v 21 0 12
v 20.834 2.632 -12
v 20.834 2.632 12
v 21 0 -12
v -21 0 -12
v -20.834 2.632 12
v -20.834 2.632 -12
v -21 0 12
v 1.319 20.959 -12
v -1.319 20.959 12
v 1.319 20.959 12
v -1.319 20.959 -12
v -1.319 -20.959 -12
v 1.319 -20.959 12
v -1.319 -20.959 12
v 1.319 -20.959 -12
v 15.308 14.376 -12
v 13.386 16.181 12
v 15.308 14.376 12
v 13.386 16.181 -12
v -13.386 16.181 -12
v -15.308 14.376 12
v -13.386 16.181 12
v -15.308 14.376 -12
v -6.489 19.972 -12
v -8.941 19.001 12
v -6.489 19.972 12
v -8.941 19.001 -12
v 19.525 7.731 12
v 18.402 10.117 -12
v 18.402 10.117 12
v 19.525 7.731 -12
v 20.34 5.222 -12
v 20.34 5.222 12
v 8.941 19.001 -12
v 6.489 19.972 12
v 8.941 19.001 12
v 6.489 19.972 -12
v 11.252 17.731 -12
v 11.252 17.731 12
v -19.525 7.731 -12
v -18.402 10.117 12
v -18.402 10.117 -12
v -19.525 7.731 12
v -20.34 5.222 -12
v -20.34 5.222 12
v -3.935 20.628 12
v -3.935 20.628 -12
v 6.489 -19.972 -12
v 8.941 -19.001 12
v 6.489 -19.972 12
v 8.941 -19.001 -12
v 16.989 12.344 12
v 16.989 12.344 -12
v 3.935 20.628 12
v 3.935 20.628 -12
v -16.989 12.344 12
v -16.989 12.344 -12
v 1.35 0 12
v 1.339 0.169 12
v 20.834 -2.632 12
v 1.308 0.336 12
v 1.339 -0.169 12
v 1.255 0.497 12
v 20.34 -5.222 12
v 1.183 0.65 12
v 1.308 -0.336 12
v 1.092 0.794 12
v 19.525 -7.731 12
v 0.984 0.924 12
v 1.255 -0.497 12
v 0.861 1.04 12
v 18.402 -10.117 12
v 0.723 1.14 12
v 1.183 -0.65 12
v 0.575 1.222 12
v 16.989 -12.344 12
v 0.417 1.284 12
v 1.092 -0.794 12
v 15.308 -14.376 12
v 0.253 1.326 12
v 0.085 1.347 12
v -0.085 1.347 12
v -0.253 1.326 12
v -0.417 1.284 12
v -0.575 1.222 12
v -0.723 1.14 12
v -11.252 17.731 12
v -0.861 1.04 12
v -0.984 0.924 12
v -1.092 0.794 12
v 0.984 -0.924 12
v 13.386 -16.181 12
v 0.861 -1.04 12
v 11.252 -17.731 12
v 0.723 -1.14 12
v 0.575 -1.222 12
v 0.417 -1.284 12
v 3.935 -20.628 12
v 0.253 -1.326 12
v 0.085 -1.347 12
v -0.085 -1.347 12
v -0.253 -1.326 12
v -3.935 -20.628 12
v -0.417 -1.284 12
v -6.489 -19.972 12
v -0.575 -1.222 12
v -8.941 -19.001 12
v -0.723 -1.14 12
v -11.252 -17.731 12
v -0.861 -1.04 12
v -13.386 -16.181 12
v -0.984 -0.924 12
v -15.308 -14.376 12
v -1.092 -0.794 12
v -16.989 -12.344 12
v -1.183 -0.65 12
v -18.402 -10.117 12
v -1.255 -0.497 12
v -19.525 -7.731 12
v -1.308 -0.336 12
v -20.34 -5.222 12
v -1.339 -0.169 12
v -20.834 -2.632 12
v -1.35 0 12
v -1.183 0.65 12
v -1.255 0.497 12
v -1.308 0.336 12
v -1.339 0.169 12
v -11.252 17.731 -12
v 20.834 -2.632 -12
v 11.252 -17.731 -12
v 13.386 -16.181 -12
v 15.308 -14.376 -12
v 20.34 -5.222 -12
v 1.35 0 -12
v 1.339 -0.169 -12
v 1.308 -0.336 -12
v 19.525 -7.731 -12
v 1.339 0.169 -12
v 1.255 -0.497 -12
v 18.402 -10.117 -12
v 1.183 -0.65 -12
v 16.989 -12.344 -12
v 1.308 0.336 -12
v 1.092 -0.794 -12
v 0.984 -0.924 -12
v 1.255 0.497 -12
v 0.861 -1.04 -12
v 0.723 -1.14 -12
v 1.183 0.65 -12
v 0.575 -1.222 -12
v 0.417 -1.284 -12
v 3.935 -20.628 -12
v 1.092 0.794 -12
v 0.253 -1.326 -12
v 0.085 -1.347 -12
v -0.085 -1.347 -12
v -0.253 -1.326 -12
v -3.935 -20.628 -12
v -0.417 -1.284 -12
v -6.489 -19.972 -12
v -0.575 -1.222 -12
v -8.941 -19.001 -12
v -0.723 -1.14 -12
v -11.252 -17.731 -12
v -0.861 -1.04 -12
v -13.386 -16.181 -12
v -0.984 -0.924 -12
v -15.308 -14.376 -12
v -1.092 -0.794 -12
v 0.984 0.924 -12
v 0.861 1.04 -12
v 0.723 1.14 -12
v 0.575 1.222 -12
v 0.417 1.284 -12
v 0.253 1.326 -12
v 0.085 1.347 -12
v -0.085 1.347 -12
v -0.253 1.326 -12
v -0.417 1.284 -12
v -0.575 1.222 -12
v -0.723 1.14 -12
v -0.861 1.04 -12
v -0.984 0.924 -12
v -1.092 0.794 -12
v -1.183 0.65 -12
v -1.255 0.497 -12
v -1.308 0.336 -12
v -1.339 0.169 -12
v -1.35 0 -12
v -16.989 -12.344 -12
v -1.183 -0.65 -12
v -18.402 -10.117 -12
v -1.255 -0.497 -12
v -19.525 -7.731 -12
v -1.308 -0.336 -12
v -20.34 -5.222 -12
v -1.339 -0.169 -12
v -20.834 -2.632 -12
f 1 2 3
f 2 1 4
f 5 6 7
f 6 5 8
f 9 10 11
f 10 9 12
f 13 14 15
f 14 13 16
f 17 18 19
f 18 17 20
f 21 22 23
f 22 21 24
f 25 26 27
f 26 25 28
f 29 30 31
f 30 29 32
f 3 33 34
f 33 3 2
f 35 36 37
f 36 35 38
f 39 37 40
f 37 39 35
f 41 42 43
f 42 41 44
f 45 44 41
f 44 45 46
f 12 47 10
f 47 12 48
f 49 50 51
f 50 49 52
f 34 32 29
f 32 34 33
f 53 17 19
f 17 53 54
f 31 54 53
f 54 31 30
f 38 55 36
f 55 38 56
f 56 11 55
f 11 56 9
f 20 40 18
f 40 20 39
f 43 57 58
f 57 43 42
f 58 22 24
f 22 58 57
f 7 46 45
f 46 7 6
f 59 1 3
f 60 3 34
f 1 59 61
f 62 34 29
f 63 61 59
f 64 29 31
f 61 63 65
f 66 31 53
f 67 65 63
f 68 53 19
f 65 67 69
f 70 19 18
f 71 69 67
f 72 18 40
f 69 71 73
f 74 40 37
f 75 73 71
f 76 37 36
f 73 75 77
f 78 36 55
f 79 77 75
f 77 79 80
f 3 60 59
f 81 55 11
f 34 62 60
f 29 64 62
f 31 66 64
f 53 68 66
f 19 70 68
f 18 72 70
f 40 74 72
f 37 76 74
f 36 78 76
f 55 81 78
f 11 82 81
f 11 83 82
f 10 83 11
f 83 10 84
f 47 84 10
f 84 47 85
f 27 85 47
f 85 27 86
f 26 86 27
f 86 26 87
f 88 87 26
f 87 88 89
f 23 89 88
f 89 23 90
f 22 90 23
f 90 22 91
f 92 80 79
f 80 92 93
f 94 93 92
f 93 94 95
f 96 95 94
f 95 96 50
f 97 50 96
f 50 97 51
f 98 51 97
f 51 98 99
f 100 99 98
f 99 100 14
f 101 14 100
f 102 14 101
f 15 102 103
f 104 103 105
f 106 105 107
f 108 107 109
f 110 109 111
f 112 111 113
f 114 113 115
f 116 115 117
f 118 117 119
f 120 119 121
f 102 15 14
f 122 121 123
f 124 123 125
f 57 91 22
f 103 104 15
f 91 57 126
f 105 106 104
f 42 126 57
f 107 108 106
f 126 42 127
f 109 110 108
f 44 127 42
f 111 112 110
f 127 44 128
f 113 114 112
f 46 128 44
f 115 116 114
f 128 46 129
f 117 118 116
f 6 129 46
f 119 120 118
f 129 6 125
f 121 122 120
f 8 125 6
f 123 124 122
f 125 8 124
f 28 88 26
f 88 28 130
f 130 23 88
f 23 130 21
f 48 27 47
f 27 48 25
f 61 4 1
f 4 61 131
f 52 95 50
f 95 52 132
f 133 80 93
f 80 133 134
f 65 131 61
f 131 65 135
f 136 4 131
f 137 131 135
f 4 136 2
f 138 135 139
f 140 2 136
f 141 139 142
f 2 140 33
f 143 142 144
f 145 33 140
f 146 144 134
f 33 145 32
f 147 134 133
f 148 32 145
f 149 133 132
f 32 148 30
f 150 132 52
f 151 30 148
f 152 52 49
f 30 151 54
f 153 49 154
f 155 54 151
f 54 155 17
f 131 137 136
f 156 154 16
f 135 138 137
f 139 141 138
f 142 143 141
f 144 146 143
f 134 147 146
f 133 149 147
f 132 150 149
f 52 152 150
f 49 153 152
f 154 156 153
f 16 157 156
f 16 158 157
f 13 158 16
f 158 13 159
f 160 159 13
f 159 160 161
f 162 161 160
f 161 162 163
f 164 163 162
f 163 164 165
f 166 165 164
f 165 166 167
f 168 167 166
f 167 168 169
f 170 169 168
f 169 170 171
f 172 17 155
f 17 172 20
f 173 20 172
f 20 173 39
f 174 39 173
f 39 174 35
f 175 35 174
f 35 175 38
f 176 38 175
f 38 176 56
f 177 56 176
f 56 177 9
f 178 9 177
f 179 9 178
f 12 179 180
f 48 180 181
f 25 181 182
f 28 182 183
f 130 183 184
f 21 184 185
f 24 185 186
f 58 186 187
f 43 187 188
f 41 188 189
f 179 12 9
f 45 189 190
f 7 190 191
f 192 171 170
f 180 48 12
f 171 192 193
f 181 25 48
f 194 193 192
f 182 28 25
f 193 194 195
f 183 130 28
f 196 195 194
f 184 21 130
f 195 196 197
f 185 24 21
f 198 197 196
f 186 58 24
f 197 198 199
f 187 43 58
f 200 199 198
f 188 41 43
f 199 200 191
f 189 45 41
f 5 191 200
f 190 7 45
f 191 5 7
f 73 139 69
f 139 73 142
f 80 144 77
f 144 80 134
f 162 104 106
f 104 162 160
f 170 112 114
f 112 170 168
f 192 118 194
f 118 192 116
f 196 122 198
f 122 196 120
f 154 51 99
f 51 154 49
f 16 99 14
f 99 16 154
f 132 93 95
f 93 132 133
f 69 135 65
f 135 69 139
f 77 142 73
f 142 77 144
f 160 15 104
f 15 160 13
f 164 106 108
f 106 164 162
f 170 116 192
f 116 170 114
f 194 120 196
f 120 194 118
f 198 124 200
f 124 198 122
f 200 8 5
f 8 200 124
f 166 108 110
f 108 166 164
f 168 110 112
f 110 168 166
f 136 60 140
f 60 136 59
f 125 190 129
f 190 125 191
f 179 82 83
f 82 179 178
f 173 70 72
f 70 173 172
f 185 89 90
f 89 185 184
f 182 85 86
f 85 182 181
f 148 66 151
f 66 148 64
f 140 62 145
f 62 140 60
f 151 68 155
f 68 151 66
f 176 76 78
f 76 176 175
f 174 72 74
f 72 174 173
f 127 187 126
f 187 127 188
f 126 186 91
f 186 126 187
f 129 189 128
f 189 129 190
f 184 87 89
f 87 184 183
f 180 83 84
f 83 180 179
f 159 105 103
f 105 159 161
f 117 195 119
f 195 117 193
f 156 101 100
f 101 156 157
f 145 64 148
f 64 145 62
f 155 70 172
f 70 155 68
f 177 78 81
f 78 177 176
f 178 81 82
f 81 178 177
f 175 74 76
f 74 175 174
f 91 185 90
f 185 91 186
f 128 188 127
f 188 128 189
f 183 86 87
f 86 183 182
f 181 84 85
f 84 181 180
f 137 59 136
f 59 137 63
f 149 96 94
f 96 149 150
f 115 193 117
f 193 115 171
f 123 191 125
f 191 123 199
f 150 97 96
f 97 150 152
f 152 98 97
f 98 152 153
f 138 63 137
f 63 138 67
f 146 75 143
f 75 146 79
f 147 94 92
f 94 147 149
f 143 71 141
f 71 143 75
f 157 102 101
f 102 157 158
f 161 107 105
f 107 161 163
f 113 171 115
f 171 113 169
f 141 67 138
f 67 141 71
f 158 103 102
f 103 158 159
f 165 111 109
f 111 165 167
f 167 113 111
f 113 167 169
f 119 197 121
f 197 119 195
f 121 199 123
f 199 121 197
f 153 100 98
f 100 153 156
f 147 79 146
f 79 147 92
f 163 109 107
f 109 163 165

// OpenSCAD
$fn = 50;


difference() {
	union() {
		translate(v = [0, 0, -12.0000000000]) {
			cylinder(h = 24, r = 21.0000000000);
		}
	}
	union() {
		translate(v = [0, 0, -100.0000000000]) {
			cylinder(h = 200, r = 1.3500000000);
		}
	}
}
